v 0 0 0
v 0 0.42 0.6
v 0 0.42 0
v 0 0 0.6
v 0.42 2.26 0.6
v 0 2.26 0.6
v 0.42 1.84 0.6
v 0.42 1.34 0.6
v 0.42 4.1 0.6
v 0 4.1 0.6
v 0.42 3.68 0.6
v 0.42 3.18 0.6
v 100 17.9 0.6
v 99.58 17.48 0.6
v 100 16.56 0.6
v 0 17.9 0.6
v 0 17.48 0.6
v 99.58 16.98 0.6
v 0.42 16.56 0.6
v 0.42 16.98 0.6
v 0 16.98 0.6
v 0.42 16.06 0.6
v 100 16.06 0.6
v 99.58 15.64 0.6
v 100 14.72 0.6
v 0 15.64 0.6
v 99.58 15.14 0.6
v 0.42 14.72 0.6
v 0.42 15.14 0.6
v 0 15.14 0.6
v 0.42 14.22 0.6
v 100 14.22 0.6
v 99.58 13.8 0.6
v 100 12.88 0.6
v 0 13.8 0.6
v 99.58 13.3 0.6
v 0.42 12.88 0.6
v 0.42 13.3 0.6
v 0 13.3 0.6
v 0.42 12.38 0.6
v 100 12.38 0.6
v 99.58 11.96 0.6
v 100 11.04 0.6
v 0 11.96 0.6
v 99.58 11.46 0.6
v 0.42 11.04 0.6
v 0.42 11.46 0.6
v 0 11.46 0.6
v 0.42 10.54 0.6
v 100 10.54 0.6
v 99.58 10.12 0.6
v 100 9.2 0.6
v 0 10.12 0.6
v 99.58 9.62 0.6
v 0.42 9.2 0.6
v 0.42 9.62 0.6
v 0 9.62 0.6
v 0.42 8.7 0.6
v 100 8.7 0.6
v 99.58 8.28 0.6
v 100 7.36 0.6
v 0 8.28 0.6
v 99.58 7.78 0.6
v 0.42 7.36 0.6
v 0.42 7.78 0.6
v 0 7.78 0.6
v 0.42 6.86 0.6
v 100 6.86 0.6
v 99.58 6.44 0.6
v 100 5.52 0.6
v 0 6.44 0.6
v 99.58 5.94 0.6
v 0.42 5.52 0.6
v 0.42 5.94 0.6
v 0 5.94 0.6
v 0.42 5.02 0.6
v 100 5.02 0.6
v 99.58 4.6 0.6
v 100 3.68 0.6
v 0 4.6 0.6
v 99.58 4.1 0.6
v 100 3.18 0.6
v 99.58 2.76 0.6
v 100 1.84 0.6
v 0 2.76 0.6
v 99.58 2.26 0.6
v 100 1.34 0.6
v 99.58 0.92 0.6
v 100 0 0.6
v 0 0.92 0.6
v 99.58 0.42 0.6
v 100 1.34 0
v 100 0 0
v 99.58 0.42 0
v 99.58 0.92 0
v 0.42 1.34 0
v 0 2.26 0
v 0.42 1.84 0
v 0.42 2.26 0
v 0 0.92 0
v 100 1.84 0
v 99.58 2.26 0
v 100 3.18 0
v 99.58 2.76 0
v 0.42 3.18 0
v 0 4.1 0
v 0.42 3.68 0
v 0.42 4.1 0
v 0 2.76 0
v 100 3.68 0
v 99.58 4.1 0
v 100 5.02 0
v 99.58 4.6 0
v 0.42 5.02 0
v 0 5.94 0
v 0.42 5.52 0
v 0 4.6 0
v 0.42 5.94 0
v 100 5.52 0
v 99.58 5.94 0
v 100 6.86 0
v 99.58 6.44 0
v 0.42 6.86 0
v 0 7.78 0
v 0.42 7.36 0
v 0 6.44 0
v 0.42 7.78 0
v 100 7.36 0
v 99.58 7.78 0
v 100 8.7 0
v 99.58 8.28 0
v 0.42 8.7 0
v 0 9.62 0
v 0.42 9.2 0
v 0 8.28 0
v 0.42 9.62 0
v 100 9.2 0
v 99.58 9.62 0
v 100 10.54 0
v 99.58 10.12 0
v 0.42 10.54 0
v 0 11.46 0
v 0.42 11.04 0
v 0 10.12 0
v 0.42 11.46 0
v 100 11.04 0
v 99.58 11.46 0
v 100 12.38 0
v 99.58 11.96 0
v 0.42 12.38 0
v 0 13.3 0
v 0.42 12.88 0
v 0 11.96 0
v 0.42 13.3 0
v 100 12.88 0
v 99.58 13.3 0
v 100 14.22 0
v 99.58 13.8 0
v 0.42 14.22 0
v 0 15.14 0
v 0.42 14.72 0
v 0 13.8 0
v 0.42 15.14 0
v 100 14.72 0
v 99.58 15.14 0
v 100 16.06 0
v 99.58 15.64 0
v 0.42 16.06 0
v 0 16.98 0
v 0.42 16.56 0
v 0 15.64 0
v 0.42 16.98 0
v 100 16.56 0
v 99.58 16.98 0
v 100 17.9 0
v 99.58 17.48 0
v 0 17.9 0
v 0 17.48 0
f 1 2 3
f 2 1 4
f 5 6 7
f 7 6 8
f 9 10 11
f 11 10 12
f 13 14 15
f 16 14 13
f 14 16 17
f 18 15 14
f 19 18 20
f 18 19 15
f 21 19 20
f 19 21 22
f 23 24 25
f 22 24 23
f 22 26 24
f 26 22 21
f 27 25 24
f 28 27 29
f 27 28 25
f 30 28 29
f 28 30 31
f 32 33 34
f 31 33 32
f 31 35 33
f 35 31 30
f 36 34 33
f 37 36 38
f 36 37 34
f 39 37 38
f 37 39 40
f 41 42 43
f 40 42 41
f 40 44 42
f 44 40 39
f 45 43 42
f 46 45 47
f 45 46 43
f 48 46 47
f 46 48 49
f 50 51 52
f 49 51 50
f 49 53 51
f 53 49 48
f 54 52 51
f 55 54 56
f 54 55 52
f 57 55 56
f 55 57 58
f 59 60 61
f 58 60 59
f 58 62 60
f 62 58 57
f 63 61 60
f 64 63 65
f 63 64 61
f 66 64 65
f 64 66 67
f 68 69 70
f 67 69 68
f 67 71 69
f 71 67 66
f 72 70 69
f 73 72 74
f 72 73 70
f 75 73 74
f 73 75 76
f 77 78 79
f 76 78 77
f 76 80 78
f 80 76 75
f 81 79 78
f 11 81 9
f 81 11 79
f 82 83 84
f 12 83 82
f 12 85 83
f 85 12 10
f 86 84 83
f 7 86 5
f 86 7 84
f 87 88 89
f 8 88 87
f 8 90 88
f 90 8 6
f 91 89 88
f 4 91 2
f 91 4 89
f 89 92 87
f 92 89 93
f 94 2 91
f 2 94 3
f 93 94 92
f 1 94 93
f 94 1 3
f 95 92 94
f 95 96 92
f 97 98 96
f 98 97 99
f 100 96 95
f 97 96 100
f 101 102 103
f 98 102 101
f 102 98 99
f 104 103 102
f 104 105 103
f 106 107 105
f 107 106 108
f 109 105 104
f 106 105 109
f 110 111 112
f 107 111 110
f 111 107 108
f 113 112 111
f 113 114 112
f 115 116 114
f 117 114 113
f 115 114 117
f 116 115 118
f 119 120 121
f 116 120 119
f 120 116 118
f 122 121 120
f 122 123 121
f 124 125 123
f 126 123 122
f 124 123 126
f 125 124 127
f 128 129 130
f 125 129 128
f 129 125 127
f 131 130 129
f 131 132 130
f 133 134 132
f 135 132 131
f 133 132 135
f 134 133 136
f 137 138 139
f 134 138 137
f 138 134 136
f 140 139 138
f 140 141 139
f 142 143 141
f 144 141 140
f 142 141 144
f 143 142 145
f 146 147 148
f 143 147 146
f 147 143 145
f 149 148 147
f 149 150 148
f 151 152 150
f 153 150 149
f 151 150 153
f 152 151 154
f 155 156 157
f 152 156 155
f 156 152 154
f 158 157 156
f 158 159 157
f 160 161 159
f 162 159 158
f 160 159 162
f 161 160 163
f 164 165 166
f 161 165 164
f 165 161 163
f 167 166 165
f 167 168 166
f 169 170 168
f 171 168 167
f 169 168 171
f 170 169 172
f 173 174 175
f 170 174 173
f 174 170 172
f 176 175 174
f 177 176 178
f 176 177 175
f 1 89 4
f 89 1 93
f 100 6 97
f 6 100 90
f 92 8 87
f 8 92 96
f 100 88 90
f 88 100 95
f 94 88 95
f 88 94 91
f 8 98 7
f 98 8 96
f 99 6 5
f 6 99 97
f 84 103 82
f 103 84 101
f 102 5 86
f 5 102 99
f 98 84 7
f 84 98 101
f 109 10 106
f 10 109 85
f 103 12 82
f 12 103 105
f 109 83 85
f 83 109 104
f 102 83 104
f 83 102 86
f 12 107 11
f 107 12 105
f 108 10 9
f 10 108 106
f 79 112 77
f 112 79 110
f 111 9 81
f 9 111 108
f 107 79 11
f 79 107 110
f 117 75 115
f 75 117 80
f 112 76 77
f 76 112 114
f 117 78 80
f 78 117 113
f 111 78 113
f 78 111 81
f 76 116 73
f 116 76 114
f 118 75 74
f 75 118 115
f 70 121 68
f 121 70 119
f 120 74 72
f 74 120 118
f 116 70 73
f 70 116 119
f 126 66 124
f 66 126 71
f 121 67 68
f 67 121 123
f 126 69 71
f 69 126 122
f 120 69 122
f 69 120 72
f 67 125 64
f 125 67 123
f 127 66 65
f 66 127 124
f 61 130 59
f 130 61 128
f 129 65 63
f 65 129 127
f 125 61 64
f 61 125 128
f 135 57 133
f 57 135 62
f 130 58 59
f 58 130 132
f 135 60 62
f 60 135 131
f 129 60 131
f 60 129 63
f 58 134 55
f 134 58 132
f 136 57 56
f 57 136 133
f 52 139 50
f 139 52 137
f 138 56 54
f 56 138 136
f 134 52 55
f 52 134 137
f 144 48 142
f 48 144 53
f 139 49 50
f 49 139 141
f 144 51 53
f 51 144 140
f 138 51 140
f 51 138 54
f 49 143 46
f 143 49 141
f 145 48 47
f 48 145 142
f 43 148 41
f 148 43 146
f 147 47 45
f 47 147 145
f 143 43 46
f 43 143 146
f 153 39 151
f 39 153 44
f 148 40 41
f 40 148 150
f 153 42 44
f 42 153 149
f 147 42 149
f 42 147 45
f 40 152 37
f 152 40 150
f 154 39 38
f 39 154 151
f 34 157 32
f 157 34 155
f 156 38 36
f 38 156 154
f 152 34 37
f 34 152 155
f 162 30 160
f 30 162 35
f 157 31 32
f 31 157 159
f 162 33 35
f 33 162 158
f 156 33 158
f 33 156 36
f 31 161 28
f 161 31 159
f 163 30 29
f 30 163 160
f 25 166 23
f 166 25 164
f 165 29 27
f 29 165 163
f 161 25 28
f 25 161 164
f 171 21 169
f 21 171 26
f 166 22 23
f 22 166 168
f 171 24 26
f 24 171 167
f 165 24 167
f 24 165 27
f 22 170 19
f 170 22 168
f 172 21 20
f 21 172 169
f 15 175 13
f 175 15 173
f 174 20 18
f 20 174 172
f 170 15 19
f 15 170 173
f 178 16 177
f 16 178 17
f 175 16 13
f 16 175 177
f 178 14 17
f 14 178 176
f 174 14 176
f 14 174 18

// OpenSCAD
extrusion_width = 0.42;
layer_height = 0.6;

width = 100;
height = 20;
spacing = 0.5;

module line () {
  cube([width, extrusion_width, layer_height]);
}

module zig_zag (lastline = false) {
  line();
  
  translate([0, spacing + extrusion_width, 0])
  line();
  
  color("red")
  translate([width - extrusion_width, 0, 0])
  cube([extrusion_width, spacing + 2*extrusion_width, layer_height]);

  if (!lastline) {  
    color("red")
    translate([0, extrusion_width + spacing, 0])
    cube([extrusion_width, spacing + 2*extrusion_width, layer_height]);  
  }
}


step = 2*extrusion_width + 2*spacing;
count = floor(height / step);
for (i = [1:count])
  translate([0, (i-1) * step, 0])
  zig_zag(i == count);
